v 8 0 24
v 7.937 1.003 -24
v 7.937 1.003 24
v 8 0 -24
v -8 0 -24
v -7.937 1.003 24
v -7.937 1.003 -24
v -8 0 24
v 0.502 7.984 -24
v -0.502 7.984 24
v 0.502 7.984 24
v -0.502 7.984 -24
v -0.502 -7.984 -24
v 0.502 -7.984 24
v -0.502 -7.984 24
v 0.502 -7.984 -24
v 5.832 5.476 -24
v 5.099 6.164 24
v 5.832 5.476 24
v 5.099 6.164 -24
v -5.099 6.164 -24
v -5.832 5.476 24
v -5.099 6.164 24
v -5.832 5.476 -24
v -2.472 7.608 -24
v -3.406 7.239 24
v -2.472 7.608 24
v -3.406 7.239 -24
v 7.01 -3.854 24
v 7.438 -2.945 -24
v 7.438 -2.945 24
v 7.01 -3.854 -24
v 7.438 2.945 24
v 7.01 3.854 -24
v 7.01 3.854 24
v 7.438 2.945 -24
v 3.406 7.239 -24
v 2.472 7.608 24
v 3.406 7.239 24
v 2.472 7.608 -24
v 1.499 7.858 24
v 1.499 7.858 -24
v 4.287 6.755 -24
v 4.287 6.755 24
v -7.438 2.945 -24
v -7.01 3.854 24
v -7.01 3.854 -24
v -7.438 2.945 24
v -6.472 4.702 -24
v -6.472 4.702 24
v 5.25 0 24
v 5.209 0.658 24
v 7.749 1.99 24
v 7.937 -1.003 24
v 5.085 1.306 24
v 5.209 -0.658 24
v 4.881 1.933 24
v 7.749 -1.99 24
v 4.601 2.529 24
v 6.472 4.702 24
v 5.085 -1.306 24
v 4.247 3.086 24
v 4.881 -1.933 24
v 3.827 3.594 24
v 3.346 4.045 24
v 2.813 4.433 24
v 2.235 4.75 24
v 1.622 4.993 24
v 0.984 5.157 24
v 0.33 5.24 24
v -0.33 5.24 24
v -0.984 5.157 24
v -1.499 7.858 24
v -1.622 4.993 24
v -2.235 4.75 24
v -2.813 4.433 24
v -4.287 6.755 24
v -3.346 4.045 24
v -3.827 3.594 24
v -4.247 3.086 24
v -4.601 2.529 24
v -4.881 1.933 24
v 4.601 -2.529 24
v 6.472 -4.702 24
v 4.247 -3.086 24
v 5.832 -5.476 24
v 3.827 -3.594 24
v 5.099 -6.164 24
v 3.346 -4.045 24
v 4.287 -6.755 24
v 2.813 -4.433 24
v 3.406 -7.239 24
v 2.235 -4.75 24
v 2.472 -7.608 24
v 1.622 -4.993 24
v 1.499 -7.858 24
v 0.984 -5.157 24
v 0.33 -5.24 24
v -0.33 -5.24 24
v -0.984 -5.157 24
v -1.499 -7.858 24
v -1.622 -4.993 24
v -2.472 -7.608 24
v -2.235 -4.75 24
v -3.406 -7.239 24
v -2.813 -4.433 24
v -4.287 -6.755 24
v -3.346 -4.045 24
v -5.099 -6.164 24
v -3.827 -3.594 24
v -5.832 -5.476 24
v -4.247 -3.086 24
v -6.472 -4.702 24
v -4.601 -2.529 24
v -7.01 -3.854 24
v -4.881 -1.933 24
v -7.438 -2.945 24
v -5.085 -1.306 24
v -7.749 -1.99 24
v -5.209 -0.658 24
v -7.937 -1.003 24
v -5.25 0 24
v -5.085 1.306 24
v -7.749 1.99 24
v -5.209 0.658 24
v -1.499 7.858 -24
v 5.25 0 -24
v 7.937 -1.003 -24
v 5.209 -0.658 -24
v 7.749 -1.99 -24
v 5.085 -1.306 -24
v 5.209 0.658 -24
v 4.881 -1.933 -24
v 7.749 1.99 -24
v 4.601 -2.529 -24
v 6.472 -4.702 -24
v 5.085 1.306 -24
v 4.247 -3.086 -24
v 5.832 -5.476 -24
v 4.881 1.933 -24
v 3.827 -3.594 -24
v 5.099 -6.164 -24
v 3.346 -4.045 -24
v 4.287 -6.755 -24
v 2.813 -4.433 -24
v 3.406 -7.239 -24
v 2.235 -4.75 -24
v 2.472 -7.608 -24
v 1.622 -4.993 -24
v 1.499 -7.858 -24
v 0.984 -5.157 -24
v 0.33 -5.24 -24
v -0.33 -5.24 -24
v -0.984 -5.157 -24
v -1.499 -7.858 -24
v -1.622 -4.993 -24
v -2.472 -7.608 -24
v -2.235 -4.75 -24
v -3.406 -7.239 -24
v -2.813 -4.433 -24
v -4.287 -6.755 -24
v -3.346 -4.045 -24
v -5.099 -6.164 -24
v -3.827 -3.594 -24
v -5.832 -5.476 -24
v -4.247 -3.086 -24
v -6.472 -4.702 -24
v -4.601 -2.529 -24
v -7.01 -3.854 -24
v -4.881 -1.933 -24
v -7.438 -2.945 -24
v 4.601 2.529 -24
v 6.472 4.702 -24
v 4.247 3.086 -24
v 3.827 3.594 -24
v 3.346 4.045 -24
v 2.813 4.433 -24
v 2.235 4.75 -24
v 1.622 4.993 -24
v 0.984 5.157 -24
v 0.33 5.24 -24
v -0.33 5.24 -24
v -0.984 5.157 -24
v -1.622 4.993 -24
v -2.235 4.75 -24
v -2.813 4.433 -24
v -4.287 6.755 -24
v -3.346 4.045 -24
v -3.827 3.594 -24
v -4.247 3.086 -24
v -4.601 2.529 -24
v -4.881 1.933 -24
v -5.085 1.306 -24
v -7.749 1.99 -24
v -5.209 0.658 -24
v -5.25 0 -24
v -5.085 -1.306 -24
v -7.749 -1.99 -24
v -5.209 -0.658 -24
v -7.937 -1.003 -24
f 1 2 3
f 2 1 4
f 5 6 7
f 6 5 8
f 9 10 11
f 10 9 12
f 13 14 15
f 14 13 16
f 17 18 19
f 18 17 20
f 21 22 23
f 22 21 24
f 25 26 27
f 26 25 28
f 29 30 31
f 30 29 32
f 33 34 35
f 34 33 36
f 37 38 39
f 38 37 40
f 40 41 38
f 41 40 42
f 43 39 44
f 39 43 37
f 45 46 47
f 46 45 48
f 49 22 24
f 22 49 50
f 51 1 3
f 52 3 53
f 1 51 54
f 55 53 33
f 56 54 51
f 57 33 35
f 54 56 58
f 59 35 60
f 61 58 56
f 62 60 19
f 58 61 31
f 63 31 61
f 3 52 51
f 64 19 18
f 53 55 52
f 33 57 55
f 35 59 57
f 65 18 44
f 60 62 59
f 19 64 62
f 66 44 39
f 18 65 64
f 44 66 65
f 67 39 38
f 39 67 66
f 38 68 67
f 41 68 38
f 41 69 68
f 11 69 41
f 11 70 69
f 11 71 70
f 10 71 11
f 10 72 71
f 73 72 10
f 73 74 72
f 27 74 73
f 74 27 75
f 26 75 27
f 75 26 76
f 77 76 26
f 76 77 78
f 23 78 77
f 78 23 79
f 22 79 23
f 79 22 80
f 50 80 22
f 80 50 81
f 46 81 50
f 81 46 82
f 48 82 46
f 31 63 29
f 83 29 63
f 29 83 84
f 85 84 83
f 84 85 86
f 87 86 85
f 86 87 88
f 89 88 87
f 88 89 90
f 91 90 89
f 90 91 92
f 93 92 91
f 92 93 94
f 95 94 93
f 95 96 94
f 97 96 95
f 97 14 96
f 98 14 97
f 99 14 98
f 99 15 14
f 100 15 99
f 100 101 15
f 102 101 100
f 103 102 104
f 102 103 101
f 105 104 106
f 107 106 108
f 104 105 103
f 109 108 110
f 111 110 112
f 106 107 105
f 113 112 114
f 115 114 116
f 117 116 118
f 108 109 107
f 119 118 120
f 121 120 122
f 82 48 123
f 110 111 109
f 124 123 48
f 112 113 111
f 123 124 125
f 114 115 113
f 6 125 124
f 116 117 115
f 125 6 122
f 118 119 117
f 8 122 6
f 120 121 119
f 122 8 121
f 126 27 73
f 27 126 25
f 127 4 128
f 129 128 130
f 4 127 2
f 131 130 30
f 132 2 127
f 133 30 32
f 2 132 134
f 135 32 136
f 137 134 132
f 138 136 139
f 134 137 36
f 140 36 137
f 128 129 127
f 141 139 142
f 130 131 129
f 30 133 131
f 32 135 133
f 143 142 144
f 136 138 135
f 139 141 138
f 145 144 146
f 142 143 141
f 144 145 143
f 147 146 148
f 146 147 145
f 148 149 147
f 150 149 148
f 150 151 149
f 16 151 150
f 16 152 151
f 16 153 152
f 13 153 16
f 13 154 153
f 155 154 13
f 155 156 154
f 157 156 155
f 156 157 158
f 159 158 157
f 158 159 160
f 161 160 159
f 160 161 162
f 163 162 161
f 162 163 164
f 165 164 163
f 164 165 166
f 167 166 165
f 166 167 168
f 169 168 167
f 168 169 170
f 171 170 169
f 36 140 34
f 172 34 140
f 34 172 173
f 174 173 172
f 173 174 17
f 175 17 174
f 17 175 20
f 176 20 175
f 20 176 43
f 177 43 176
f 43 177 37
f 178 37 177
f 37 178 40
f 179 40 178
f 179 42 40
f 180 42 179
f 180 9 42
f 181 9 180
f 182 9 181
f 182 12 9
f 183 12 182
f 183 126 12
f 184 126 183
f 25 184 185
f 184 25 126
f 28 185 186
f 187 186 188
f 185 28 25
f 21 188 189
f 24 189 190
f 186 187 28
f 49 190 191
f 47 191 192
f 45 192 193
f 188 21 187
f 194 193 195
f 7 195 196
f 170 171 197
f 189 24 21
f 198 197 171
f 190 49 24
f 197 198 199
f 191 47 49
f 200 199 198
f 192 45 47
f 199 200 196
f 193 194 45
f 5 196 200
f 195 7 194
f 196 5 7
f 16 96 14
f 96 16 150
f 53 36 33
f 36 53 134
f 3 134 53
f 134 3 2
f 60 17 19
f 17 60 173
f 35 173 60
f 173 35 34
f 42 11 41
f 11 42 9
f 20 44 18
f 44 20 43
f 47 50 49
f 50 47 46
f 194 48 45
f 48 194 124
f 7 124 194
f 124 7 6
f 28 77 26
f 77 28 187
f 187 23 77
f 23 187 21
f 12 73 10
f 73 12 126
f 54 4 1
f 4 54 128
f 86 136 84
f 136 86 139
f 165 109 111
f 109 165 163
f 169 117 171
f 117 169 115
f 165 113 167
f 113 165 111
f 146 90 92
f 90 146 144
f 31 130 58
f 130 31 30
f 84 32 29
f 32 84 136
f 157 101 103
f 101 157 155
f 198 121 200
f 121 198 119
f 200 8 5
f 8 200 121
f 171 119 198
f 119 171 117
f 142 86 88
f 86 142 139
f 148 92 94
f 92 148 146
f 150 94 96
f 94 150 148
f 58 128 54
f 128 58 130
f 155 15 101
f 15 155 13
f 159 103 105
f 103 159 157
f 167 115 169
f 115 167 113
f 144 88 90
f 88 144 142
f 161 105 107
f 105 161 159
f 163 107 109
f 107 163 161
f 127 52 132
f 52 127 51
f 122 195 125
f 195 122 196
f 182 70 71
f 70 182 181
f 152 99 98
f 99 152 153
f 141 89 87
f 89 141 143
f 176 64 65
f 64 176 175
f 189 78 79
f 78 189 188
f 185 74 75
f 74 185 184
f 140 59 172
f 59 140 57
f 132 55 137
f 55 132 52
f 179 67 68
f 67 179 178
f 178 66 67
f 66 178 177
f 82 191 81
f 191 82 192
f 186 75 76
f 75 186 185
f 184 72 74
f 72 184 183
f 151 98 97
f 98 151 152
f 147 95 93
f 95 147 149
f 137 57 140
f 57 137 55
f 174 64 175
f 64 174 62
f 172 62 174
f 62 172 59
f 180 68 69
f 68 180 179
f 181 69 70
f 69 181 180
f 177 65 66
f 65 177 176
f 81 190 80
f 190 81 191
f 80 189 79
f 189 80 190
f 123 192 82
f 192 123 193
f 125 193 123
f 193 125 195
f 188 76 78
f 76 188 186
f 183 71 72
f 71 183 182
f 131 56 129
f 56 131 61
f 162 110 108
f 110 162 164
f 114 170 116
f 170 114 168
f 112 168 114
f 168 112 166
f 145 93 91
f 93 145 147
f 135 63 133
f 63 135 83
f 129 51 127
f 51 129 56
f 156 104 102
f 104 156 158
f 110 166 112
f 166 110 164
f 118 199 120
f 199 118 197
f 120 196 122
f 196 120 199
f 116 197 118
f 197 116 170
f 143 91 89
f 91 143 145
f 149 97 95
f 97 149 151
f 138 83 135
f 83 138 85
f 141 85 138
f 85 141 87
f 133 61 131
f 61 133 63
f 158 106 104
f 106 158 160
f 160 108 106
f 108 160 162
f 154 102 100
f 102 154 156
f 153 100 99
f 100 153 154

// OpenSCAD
$fn = 50;


difference() {
	union() {
		translate(v = [0, 0, -24.0000000000]) {
			cylinder(h = 48, r = 8.0000000000);
		}
	}
	union() {
		translate(v = [0, 0, -100.0000000000]) {
			cylinder(h = 200, r = 5.2500000000);
		}
	}
}
